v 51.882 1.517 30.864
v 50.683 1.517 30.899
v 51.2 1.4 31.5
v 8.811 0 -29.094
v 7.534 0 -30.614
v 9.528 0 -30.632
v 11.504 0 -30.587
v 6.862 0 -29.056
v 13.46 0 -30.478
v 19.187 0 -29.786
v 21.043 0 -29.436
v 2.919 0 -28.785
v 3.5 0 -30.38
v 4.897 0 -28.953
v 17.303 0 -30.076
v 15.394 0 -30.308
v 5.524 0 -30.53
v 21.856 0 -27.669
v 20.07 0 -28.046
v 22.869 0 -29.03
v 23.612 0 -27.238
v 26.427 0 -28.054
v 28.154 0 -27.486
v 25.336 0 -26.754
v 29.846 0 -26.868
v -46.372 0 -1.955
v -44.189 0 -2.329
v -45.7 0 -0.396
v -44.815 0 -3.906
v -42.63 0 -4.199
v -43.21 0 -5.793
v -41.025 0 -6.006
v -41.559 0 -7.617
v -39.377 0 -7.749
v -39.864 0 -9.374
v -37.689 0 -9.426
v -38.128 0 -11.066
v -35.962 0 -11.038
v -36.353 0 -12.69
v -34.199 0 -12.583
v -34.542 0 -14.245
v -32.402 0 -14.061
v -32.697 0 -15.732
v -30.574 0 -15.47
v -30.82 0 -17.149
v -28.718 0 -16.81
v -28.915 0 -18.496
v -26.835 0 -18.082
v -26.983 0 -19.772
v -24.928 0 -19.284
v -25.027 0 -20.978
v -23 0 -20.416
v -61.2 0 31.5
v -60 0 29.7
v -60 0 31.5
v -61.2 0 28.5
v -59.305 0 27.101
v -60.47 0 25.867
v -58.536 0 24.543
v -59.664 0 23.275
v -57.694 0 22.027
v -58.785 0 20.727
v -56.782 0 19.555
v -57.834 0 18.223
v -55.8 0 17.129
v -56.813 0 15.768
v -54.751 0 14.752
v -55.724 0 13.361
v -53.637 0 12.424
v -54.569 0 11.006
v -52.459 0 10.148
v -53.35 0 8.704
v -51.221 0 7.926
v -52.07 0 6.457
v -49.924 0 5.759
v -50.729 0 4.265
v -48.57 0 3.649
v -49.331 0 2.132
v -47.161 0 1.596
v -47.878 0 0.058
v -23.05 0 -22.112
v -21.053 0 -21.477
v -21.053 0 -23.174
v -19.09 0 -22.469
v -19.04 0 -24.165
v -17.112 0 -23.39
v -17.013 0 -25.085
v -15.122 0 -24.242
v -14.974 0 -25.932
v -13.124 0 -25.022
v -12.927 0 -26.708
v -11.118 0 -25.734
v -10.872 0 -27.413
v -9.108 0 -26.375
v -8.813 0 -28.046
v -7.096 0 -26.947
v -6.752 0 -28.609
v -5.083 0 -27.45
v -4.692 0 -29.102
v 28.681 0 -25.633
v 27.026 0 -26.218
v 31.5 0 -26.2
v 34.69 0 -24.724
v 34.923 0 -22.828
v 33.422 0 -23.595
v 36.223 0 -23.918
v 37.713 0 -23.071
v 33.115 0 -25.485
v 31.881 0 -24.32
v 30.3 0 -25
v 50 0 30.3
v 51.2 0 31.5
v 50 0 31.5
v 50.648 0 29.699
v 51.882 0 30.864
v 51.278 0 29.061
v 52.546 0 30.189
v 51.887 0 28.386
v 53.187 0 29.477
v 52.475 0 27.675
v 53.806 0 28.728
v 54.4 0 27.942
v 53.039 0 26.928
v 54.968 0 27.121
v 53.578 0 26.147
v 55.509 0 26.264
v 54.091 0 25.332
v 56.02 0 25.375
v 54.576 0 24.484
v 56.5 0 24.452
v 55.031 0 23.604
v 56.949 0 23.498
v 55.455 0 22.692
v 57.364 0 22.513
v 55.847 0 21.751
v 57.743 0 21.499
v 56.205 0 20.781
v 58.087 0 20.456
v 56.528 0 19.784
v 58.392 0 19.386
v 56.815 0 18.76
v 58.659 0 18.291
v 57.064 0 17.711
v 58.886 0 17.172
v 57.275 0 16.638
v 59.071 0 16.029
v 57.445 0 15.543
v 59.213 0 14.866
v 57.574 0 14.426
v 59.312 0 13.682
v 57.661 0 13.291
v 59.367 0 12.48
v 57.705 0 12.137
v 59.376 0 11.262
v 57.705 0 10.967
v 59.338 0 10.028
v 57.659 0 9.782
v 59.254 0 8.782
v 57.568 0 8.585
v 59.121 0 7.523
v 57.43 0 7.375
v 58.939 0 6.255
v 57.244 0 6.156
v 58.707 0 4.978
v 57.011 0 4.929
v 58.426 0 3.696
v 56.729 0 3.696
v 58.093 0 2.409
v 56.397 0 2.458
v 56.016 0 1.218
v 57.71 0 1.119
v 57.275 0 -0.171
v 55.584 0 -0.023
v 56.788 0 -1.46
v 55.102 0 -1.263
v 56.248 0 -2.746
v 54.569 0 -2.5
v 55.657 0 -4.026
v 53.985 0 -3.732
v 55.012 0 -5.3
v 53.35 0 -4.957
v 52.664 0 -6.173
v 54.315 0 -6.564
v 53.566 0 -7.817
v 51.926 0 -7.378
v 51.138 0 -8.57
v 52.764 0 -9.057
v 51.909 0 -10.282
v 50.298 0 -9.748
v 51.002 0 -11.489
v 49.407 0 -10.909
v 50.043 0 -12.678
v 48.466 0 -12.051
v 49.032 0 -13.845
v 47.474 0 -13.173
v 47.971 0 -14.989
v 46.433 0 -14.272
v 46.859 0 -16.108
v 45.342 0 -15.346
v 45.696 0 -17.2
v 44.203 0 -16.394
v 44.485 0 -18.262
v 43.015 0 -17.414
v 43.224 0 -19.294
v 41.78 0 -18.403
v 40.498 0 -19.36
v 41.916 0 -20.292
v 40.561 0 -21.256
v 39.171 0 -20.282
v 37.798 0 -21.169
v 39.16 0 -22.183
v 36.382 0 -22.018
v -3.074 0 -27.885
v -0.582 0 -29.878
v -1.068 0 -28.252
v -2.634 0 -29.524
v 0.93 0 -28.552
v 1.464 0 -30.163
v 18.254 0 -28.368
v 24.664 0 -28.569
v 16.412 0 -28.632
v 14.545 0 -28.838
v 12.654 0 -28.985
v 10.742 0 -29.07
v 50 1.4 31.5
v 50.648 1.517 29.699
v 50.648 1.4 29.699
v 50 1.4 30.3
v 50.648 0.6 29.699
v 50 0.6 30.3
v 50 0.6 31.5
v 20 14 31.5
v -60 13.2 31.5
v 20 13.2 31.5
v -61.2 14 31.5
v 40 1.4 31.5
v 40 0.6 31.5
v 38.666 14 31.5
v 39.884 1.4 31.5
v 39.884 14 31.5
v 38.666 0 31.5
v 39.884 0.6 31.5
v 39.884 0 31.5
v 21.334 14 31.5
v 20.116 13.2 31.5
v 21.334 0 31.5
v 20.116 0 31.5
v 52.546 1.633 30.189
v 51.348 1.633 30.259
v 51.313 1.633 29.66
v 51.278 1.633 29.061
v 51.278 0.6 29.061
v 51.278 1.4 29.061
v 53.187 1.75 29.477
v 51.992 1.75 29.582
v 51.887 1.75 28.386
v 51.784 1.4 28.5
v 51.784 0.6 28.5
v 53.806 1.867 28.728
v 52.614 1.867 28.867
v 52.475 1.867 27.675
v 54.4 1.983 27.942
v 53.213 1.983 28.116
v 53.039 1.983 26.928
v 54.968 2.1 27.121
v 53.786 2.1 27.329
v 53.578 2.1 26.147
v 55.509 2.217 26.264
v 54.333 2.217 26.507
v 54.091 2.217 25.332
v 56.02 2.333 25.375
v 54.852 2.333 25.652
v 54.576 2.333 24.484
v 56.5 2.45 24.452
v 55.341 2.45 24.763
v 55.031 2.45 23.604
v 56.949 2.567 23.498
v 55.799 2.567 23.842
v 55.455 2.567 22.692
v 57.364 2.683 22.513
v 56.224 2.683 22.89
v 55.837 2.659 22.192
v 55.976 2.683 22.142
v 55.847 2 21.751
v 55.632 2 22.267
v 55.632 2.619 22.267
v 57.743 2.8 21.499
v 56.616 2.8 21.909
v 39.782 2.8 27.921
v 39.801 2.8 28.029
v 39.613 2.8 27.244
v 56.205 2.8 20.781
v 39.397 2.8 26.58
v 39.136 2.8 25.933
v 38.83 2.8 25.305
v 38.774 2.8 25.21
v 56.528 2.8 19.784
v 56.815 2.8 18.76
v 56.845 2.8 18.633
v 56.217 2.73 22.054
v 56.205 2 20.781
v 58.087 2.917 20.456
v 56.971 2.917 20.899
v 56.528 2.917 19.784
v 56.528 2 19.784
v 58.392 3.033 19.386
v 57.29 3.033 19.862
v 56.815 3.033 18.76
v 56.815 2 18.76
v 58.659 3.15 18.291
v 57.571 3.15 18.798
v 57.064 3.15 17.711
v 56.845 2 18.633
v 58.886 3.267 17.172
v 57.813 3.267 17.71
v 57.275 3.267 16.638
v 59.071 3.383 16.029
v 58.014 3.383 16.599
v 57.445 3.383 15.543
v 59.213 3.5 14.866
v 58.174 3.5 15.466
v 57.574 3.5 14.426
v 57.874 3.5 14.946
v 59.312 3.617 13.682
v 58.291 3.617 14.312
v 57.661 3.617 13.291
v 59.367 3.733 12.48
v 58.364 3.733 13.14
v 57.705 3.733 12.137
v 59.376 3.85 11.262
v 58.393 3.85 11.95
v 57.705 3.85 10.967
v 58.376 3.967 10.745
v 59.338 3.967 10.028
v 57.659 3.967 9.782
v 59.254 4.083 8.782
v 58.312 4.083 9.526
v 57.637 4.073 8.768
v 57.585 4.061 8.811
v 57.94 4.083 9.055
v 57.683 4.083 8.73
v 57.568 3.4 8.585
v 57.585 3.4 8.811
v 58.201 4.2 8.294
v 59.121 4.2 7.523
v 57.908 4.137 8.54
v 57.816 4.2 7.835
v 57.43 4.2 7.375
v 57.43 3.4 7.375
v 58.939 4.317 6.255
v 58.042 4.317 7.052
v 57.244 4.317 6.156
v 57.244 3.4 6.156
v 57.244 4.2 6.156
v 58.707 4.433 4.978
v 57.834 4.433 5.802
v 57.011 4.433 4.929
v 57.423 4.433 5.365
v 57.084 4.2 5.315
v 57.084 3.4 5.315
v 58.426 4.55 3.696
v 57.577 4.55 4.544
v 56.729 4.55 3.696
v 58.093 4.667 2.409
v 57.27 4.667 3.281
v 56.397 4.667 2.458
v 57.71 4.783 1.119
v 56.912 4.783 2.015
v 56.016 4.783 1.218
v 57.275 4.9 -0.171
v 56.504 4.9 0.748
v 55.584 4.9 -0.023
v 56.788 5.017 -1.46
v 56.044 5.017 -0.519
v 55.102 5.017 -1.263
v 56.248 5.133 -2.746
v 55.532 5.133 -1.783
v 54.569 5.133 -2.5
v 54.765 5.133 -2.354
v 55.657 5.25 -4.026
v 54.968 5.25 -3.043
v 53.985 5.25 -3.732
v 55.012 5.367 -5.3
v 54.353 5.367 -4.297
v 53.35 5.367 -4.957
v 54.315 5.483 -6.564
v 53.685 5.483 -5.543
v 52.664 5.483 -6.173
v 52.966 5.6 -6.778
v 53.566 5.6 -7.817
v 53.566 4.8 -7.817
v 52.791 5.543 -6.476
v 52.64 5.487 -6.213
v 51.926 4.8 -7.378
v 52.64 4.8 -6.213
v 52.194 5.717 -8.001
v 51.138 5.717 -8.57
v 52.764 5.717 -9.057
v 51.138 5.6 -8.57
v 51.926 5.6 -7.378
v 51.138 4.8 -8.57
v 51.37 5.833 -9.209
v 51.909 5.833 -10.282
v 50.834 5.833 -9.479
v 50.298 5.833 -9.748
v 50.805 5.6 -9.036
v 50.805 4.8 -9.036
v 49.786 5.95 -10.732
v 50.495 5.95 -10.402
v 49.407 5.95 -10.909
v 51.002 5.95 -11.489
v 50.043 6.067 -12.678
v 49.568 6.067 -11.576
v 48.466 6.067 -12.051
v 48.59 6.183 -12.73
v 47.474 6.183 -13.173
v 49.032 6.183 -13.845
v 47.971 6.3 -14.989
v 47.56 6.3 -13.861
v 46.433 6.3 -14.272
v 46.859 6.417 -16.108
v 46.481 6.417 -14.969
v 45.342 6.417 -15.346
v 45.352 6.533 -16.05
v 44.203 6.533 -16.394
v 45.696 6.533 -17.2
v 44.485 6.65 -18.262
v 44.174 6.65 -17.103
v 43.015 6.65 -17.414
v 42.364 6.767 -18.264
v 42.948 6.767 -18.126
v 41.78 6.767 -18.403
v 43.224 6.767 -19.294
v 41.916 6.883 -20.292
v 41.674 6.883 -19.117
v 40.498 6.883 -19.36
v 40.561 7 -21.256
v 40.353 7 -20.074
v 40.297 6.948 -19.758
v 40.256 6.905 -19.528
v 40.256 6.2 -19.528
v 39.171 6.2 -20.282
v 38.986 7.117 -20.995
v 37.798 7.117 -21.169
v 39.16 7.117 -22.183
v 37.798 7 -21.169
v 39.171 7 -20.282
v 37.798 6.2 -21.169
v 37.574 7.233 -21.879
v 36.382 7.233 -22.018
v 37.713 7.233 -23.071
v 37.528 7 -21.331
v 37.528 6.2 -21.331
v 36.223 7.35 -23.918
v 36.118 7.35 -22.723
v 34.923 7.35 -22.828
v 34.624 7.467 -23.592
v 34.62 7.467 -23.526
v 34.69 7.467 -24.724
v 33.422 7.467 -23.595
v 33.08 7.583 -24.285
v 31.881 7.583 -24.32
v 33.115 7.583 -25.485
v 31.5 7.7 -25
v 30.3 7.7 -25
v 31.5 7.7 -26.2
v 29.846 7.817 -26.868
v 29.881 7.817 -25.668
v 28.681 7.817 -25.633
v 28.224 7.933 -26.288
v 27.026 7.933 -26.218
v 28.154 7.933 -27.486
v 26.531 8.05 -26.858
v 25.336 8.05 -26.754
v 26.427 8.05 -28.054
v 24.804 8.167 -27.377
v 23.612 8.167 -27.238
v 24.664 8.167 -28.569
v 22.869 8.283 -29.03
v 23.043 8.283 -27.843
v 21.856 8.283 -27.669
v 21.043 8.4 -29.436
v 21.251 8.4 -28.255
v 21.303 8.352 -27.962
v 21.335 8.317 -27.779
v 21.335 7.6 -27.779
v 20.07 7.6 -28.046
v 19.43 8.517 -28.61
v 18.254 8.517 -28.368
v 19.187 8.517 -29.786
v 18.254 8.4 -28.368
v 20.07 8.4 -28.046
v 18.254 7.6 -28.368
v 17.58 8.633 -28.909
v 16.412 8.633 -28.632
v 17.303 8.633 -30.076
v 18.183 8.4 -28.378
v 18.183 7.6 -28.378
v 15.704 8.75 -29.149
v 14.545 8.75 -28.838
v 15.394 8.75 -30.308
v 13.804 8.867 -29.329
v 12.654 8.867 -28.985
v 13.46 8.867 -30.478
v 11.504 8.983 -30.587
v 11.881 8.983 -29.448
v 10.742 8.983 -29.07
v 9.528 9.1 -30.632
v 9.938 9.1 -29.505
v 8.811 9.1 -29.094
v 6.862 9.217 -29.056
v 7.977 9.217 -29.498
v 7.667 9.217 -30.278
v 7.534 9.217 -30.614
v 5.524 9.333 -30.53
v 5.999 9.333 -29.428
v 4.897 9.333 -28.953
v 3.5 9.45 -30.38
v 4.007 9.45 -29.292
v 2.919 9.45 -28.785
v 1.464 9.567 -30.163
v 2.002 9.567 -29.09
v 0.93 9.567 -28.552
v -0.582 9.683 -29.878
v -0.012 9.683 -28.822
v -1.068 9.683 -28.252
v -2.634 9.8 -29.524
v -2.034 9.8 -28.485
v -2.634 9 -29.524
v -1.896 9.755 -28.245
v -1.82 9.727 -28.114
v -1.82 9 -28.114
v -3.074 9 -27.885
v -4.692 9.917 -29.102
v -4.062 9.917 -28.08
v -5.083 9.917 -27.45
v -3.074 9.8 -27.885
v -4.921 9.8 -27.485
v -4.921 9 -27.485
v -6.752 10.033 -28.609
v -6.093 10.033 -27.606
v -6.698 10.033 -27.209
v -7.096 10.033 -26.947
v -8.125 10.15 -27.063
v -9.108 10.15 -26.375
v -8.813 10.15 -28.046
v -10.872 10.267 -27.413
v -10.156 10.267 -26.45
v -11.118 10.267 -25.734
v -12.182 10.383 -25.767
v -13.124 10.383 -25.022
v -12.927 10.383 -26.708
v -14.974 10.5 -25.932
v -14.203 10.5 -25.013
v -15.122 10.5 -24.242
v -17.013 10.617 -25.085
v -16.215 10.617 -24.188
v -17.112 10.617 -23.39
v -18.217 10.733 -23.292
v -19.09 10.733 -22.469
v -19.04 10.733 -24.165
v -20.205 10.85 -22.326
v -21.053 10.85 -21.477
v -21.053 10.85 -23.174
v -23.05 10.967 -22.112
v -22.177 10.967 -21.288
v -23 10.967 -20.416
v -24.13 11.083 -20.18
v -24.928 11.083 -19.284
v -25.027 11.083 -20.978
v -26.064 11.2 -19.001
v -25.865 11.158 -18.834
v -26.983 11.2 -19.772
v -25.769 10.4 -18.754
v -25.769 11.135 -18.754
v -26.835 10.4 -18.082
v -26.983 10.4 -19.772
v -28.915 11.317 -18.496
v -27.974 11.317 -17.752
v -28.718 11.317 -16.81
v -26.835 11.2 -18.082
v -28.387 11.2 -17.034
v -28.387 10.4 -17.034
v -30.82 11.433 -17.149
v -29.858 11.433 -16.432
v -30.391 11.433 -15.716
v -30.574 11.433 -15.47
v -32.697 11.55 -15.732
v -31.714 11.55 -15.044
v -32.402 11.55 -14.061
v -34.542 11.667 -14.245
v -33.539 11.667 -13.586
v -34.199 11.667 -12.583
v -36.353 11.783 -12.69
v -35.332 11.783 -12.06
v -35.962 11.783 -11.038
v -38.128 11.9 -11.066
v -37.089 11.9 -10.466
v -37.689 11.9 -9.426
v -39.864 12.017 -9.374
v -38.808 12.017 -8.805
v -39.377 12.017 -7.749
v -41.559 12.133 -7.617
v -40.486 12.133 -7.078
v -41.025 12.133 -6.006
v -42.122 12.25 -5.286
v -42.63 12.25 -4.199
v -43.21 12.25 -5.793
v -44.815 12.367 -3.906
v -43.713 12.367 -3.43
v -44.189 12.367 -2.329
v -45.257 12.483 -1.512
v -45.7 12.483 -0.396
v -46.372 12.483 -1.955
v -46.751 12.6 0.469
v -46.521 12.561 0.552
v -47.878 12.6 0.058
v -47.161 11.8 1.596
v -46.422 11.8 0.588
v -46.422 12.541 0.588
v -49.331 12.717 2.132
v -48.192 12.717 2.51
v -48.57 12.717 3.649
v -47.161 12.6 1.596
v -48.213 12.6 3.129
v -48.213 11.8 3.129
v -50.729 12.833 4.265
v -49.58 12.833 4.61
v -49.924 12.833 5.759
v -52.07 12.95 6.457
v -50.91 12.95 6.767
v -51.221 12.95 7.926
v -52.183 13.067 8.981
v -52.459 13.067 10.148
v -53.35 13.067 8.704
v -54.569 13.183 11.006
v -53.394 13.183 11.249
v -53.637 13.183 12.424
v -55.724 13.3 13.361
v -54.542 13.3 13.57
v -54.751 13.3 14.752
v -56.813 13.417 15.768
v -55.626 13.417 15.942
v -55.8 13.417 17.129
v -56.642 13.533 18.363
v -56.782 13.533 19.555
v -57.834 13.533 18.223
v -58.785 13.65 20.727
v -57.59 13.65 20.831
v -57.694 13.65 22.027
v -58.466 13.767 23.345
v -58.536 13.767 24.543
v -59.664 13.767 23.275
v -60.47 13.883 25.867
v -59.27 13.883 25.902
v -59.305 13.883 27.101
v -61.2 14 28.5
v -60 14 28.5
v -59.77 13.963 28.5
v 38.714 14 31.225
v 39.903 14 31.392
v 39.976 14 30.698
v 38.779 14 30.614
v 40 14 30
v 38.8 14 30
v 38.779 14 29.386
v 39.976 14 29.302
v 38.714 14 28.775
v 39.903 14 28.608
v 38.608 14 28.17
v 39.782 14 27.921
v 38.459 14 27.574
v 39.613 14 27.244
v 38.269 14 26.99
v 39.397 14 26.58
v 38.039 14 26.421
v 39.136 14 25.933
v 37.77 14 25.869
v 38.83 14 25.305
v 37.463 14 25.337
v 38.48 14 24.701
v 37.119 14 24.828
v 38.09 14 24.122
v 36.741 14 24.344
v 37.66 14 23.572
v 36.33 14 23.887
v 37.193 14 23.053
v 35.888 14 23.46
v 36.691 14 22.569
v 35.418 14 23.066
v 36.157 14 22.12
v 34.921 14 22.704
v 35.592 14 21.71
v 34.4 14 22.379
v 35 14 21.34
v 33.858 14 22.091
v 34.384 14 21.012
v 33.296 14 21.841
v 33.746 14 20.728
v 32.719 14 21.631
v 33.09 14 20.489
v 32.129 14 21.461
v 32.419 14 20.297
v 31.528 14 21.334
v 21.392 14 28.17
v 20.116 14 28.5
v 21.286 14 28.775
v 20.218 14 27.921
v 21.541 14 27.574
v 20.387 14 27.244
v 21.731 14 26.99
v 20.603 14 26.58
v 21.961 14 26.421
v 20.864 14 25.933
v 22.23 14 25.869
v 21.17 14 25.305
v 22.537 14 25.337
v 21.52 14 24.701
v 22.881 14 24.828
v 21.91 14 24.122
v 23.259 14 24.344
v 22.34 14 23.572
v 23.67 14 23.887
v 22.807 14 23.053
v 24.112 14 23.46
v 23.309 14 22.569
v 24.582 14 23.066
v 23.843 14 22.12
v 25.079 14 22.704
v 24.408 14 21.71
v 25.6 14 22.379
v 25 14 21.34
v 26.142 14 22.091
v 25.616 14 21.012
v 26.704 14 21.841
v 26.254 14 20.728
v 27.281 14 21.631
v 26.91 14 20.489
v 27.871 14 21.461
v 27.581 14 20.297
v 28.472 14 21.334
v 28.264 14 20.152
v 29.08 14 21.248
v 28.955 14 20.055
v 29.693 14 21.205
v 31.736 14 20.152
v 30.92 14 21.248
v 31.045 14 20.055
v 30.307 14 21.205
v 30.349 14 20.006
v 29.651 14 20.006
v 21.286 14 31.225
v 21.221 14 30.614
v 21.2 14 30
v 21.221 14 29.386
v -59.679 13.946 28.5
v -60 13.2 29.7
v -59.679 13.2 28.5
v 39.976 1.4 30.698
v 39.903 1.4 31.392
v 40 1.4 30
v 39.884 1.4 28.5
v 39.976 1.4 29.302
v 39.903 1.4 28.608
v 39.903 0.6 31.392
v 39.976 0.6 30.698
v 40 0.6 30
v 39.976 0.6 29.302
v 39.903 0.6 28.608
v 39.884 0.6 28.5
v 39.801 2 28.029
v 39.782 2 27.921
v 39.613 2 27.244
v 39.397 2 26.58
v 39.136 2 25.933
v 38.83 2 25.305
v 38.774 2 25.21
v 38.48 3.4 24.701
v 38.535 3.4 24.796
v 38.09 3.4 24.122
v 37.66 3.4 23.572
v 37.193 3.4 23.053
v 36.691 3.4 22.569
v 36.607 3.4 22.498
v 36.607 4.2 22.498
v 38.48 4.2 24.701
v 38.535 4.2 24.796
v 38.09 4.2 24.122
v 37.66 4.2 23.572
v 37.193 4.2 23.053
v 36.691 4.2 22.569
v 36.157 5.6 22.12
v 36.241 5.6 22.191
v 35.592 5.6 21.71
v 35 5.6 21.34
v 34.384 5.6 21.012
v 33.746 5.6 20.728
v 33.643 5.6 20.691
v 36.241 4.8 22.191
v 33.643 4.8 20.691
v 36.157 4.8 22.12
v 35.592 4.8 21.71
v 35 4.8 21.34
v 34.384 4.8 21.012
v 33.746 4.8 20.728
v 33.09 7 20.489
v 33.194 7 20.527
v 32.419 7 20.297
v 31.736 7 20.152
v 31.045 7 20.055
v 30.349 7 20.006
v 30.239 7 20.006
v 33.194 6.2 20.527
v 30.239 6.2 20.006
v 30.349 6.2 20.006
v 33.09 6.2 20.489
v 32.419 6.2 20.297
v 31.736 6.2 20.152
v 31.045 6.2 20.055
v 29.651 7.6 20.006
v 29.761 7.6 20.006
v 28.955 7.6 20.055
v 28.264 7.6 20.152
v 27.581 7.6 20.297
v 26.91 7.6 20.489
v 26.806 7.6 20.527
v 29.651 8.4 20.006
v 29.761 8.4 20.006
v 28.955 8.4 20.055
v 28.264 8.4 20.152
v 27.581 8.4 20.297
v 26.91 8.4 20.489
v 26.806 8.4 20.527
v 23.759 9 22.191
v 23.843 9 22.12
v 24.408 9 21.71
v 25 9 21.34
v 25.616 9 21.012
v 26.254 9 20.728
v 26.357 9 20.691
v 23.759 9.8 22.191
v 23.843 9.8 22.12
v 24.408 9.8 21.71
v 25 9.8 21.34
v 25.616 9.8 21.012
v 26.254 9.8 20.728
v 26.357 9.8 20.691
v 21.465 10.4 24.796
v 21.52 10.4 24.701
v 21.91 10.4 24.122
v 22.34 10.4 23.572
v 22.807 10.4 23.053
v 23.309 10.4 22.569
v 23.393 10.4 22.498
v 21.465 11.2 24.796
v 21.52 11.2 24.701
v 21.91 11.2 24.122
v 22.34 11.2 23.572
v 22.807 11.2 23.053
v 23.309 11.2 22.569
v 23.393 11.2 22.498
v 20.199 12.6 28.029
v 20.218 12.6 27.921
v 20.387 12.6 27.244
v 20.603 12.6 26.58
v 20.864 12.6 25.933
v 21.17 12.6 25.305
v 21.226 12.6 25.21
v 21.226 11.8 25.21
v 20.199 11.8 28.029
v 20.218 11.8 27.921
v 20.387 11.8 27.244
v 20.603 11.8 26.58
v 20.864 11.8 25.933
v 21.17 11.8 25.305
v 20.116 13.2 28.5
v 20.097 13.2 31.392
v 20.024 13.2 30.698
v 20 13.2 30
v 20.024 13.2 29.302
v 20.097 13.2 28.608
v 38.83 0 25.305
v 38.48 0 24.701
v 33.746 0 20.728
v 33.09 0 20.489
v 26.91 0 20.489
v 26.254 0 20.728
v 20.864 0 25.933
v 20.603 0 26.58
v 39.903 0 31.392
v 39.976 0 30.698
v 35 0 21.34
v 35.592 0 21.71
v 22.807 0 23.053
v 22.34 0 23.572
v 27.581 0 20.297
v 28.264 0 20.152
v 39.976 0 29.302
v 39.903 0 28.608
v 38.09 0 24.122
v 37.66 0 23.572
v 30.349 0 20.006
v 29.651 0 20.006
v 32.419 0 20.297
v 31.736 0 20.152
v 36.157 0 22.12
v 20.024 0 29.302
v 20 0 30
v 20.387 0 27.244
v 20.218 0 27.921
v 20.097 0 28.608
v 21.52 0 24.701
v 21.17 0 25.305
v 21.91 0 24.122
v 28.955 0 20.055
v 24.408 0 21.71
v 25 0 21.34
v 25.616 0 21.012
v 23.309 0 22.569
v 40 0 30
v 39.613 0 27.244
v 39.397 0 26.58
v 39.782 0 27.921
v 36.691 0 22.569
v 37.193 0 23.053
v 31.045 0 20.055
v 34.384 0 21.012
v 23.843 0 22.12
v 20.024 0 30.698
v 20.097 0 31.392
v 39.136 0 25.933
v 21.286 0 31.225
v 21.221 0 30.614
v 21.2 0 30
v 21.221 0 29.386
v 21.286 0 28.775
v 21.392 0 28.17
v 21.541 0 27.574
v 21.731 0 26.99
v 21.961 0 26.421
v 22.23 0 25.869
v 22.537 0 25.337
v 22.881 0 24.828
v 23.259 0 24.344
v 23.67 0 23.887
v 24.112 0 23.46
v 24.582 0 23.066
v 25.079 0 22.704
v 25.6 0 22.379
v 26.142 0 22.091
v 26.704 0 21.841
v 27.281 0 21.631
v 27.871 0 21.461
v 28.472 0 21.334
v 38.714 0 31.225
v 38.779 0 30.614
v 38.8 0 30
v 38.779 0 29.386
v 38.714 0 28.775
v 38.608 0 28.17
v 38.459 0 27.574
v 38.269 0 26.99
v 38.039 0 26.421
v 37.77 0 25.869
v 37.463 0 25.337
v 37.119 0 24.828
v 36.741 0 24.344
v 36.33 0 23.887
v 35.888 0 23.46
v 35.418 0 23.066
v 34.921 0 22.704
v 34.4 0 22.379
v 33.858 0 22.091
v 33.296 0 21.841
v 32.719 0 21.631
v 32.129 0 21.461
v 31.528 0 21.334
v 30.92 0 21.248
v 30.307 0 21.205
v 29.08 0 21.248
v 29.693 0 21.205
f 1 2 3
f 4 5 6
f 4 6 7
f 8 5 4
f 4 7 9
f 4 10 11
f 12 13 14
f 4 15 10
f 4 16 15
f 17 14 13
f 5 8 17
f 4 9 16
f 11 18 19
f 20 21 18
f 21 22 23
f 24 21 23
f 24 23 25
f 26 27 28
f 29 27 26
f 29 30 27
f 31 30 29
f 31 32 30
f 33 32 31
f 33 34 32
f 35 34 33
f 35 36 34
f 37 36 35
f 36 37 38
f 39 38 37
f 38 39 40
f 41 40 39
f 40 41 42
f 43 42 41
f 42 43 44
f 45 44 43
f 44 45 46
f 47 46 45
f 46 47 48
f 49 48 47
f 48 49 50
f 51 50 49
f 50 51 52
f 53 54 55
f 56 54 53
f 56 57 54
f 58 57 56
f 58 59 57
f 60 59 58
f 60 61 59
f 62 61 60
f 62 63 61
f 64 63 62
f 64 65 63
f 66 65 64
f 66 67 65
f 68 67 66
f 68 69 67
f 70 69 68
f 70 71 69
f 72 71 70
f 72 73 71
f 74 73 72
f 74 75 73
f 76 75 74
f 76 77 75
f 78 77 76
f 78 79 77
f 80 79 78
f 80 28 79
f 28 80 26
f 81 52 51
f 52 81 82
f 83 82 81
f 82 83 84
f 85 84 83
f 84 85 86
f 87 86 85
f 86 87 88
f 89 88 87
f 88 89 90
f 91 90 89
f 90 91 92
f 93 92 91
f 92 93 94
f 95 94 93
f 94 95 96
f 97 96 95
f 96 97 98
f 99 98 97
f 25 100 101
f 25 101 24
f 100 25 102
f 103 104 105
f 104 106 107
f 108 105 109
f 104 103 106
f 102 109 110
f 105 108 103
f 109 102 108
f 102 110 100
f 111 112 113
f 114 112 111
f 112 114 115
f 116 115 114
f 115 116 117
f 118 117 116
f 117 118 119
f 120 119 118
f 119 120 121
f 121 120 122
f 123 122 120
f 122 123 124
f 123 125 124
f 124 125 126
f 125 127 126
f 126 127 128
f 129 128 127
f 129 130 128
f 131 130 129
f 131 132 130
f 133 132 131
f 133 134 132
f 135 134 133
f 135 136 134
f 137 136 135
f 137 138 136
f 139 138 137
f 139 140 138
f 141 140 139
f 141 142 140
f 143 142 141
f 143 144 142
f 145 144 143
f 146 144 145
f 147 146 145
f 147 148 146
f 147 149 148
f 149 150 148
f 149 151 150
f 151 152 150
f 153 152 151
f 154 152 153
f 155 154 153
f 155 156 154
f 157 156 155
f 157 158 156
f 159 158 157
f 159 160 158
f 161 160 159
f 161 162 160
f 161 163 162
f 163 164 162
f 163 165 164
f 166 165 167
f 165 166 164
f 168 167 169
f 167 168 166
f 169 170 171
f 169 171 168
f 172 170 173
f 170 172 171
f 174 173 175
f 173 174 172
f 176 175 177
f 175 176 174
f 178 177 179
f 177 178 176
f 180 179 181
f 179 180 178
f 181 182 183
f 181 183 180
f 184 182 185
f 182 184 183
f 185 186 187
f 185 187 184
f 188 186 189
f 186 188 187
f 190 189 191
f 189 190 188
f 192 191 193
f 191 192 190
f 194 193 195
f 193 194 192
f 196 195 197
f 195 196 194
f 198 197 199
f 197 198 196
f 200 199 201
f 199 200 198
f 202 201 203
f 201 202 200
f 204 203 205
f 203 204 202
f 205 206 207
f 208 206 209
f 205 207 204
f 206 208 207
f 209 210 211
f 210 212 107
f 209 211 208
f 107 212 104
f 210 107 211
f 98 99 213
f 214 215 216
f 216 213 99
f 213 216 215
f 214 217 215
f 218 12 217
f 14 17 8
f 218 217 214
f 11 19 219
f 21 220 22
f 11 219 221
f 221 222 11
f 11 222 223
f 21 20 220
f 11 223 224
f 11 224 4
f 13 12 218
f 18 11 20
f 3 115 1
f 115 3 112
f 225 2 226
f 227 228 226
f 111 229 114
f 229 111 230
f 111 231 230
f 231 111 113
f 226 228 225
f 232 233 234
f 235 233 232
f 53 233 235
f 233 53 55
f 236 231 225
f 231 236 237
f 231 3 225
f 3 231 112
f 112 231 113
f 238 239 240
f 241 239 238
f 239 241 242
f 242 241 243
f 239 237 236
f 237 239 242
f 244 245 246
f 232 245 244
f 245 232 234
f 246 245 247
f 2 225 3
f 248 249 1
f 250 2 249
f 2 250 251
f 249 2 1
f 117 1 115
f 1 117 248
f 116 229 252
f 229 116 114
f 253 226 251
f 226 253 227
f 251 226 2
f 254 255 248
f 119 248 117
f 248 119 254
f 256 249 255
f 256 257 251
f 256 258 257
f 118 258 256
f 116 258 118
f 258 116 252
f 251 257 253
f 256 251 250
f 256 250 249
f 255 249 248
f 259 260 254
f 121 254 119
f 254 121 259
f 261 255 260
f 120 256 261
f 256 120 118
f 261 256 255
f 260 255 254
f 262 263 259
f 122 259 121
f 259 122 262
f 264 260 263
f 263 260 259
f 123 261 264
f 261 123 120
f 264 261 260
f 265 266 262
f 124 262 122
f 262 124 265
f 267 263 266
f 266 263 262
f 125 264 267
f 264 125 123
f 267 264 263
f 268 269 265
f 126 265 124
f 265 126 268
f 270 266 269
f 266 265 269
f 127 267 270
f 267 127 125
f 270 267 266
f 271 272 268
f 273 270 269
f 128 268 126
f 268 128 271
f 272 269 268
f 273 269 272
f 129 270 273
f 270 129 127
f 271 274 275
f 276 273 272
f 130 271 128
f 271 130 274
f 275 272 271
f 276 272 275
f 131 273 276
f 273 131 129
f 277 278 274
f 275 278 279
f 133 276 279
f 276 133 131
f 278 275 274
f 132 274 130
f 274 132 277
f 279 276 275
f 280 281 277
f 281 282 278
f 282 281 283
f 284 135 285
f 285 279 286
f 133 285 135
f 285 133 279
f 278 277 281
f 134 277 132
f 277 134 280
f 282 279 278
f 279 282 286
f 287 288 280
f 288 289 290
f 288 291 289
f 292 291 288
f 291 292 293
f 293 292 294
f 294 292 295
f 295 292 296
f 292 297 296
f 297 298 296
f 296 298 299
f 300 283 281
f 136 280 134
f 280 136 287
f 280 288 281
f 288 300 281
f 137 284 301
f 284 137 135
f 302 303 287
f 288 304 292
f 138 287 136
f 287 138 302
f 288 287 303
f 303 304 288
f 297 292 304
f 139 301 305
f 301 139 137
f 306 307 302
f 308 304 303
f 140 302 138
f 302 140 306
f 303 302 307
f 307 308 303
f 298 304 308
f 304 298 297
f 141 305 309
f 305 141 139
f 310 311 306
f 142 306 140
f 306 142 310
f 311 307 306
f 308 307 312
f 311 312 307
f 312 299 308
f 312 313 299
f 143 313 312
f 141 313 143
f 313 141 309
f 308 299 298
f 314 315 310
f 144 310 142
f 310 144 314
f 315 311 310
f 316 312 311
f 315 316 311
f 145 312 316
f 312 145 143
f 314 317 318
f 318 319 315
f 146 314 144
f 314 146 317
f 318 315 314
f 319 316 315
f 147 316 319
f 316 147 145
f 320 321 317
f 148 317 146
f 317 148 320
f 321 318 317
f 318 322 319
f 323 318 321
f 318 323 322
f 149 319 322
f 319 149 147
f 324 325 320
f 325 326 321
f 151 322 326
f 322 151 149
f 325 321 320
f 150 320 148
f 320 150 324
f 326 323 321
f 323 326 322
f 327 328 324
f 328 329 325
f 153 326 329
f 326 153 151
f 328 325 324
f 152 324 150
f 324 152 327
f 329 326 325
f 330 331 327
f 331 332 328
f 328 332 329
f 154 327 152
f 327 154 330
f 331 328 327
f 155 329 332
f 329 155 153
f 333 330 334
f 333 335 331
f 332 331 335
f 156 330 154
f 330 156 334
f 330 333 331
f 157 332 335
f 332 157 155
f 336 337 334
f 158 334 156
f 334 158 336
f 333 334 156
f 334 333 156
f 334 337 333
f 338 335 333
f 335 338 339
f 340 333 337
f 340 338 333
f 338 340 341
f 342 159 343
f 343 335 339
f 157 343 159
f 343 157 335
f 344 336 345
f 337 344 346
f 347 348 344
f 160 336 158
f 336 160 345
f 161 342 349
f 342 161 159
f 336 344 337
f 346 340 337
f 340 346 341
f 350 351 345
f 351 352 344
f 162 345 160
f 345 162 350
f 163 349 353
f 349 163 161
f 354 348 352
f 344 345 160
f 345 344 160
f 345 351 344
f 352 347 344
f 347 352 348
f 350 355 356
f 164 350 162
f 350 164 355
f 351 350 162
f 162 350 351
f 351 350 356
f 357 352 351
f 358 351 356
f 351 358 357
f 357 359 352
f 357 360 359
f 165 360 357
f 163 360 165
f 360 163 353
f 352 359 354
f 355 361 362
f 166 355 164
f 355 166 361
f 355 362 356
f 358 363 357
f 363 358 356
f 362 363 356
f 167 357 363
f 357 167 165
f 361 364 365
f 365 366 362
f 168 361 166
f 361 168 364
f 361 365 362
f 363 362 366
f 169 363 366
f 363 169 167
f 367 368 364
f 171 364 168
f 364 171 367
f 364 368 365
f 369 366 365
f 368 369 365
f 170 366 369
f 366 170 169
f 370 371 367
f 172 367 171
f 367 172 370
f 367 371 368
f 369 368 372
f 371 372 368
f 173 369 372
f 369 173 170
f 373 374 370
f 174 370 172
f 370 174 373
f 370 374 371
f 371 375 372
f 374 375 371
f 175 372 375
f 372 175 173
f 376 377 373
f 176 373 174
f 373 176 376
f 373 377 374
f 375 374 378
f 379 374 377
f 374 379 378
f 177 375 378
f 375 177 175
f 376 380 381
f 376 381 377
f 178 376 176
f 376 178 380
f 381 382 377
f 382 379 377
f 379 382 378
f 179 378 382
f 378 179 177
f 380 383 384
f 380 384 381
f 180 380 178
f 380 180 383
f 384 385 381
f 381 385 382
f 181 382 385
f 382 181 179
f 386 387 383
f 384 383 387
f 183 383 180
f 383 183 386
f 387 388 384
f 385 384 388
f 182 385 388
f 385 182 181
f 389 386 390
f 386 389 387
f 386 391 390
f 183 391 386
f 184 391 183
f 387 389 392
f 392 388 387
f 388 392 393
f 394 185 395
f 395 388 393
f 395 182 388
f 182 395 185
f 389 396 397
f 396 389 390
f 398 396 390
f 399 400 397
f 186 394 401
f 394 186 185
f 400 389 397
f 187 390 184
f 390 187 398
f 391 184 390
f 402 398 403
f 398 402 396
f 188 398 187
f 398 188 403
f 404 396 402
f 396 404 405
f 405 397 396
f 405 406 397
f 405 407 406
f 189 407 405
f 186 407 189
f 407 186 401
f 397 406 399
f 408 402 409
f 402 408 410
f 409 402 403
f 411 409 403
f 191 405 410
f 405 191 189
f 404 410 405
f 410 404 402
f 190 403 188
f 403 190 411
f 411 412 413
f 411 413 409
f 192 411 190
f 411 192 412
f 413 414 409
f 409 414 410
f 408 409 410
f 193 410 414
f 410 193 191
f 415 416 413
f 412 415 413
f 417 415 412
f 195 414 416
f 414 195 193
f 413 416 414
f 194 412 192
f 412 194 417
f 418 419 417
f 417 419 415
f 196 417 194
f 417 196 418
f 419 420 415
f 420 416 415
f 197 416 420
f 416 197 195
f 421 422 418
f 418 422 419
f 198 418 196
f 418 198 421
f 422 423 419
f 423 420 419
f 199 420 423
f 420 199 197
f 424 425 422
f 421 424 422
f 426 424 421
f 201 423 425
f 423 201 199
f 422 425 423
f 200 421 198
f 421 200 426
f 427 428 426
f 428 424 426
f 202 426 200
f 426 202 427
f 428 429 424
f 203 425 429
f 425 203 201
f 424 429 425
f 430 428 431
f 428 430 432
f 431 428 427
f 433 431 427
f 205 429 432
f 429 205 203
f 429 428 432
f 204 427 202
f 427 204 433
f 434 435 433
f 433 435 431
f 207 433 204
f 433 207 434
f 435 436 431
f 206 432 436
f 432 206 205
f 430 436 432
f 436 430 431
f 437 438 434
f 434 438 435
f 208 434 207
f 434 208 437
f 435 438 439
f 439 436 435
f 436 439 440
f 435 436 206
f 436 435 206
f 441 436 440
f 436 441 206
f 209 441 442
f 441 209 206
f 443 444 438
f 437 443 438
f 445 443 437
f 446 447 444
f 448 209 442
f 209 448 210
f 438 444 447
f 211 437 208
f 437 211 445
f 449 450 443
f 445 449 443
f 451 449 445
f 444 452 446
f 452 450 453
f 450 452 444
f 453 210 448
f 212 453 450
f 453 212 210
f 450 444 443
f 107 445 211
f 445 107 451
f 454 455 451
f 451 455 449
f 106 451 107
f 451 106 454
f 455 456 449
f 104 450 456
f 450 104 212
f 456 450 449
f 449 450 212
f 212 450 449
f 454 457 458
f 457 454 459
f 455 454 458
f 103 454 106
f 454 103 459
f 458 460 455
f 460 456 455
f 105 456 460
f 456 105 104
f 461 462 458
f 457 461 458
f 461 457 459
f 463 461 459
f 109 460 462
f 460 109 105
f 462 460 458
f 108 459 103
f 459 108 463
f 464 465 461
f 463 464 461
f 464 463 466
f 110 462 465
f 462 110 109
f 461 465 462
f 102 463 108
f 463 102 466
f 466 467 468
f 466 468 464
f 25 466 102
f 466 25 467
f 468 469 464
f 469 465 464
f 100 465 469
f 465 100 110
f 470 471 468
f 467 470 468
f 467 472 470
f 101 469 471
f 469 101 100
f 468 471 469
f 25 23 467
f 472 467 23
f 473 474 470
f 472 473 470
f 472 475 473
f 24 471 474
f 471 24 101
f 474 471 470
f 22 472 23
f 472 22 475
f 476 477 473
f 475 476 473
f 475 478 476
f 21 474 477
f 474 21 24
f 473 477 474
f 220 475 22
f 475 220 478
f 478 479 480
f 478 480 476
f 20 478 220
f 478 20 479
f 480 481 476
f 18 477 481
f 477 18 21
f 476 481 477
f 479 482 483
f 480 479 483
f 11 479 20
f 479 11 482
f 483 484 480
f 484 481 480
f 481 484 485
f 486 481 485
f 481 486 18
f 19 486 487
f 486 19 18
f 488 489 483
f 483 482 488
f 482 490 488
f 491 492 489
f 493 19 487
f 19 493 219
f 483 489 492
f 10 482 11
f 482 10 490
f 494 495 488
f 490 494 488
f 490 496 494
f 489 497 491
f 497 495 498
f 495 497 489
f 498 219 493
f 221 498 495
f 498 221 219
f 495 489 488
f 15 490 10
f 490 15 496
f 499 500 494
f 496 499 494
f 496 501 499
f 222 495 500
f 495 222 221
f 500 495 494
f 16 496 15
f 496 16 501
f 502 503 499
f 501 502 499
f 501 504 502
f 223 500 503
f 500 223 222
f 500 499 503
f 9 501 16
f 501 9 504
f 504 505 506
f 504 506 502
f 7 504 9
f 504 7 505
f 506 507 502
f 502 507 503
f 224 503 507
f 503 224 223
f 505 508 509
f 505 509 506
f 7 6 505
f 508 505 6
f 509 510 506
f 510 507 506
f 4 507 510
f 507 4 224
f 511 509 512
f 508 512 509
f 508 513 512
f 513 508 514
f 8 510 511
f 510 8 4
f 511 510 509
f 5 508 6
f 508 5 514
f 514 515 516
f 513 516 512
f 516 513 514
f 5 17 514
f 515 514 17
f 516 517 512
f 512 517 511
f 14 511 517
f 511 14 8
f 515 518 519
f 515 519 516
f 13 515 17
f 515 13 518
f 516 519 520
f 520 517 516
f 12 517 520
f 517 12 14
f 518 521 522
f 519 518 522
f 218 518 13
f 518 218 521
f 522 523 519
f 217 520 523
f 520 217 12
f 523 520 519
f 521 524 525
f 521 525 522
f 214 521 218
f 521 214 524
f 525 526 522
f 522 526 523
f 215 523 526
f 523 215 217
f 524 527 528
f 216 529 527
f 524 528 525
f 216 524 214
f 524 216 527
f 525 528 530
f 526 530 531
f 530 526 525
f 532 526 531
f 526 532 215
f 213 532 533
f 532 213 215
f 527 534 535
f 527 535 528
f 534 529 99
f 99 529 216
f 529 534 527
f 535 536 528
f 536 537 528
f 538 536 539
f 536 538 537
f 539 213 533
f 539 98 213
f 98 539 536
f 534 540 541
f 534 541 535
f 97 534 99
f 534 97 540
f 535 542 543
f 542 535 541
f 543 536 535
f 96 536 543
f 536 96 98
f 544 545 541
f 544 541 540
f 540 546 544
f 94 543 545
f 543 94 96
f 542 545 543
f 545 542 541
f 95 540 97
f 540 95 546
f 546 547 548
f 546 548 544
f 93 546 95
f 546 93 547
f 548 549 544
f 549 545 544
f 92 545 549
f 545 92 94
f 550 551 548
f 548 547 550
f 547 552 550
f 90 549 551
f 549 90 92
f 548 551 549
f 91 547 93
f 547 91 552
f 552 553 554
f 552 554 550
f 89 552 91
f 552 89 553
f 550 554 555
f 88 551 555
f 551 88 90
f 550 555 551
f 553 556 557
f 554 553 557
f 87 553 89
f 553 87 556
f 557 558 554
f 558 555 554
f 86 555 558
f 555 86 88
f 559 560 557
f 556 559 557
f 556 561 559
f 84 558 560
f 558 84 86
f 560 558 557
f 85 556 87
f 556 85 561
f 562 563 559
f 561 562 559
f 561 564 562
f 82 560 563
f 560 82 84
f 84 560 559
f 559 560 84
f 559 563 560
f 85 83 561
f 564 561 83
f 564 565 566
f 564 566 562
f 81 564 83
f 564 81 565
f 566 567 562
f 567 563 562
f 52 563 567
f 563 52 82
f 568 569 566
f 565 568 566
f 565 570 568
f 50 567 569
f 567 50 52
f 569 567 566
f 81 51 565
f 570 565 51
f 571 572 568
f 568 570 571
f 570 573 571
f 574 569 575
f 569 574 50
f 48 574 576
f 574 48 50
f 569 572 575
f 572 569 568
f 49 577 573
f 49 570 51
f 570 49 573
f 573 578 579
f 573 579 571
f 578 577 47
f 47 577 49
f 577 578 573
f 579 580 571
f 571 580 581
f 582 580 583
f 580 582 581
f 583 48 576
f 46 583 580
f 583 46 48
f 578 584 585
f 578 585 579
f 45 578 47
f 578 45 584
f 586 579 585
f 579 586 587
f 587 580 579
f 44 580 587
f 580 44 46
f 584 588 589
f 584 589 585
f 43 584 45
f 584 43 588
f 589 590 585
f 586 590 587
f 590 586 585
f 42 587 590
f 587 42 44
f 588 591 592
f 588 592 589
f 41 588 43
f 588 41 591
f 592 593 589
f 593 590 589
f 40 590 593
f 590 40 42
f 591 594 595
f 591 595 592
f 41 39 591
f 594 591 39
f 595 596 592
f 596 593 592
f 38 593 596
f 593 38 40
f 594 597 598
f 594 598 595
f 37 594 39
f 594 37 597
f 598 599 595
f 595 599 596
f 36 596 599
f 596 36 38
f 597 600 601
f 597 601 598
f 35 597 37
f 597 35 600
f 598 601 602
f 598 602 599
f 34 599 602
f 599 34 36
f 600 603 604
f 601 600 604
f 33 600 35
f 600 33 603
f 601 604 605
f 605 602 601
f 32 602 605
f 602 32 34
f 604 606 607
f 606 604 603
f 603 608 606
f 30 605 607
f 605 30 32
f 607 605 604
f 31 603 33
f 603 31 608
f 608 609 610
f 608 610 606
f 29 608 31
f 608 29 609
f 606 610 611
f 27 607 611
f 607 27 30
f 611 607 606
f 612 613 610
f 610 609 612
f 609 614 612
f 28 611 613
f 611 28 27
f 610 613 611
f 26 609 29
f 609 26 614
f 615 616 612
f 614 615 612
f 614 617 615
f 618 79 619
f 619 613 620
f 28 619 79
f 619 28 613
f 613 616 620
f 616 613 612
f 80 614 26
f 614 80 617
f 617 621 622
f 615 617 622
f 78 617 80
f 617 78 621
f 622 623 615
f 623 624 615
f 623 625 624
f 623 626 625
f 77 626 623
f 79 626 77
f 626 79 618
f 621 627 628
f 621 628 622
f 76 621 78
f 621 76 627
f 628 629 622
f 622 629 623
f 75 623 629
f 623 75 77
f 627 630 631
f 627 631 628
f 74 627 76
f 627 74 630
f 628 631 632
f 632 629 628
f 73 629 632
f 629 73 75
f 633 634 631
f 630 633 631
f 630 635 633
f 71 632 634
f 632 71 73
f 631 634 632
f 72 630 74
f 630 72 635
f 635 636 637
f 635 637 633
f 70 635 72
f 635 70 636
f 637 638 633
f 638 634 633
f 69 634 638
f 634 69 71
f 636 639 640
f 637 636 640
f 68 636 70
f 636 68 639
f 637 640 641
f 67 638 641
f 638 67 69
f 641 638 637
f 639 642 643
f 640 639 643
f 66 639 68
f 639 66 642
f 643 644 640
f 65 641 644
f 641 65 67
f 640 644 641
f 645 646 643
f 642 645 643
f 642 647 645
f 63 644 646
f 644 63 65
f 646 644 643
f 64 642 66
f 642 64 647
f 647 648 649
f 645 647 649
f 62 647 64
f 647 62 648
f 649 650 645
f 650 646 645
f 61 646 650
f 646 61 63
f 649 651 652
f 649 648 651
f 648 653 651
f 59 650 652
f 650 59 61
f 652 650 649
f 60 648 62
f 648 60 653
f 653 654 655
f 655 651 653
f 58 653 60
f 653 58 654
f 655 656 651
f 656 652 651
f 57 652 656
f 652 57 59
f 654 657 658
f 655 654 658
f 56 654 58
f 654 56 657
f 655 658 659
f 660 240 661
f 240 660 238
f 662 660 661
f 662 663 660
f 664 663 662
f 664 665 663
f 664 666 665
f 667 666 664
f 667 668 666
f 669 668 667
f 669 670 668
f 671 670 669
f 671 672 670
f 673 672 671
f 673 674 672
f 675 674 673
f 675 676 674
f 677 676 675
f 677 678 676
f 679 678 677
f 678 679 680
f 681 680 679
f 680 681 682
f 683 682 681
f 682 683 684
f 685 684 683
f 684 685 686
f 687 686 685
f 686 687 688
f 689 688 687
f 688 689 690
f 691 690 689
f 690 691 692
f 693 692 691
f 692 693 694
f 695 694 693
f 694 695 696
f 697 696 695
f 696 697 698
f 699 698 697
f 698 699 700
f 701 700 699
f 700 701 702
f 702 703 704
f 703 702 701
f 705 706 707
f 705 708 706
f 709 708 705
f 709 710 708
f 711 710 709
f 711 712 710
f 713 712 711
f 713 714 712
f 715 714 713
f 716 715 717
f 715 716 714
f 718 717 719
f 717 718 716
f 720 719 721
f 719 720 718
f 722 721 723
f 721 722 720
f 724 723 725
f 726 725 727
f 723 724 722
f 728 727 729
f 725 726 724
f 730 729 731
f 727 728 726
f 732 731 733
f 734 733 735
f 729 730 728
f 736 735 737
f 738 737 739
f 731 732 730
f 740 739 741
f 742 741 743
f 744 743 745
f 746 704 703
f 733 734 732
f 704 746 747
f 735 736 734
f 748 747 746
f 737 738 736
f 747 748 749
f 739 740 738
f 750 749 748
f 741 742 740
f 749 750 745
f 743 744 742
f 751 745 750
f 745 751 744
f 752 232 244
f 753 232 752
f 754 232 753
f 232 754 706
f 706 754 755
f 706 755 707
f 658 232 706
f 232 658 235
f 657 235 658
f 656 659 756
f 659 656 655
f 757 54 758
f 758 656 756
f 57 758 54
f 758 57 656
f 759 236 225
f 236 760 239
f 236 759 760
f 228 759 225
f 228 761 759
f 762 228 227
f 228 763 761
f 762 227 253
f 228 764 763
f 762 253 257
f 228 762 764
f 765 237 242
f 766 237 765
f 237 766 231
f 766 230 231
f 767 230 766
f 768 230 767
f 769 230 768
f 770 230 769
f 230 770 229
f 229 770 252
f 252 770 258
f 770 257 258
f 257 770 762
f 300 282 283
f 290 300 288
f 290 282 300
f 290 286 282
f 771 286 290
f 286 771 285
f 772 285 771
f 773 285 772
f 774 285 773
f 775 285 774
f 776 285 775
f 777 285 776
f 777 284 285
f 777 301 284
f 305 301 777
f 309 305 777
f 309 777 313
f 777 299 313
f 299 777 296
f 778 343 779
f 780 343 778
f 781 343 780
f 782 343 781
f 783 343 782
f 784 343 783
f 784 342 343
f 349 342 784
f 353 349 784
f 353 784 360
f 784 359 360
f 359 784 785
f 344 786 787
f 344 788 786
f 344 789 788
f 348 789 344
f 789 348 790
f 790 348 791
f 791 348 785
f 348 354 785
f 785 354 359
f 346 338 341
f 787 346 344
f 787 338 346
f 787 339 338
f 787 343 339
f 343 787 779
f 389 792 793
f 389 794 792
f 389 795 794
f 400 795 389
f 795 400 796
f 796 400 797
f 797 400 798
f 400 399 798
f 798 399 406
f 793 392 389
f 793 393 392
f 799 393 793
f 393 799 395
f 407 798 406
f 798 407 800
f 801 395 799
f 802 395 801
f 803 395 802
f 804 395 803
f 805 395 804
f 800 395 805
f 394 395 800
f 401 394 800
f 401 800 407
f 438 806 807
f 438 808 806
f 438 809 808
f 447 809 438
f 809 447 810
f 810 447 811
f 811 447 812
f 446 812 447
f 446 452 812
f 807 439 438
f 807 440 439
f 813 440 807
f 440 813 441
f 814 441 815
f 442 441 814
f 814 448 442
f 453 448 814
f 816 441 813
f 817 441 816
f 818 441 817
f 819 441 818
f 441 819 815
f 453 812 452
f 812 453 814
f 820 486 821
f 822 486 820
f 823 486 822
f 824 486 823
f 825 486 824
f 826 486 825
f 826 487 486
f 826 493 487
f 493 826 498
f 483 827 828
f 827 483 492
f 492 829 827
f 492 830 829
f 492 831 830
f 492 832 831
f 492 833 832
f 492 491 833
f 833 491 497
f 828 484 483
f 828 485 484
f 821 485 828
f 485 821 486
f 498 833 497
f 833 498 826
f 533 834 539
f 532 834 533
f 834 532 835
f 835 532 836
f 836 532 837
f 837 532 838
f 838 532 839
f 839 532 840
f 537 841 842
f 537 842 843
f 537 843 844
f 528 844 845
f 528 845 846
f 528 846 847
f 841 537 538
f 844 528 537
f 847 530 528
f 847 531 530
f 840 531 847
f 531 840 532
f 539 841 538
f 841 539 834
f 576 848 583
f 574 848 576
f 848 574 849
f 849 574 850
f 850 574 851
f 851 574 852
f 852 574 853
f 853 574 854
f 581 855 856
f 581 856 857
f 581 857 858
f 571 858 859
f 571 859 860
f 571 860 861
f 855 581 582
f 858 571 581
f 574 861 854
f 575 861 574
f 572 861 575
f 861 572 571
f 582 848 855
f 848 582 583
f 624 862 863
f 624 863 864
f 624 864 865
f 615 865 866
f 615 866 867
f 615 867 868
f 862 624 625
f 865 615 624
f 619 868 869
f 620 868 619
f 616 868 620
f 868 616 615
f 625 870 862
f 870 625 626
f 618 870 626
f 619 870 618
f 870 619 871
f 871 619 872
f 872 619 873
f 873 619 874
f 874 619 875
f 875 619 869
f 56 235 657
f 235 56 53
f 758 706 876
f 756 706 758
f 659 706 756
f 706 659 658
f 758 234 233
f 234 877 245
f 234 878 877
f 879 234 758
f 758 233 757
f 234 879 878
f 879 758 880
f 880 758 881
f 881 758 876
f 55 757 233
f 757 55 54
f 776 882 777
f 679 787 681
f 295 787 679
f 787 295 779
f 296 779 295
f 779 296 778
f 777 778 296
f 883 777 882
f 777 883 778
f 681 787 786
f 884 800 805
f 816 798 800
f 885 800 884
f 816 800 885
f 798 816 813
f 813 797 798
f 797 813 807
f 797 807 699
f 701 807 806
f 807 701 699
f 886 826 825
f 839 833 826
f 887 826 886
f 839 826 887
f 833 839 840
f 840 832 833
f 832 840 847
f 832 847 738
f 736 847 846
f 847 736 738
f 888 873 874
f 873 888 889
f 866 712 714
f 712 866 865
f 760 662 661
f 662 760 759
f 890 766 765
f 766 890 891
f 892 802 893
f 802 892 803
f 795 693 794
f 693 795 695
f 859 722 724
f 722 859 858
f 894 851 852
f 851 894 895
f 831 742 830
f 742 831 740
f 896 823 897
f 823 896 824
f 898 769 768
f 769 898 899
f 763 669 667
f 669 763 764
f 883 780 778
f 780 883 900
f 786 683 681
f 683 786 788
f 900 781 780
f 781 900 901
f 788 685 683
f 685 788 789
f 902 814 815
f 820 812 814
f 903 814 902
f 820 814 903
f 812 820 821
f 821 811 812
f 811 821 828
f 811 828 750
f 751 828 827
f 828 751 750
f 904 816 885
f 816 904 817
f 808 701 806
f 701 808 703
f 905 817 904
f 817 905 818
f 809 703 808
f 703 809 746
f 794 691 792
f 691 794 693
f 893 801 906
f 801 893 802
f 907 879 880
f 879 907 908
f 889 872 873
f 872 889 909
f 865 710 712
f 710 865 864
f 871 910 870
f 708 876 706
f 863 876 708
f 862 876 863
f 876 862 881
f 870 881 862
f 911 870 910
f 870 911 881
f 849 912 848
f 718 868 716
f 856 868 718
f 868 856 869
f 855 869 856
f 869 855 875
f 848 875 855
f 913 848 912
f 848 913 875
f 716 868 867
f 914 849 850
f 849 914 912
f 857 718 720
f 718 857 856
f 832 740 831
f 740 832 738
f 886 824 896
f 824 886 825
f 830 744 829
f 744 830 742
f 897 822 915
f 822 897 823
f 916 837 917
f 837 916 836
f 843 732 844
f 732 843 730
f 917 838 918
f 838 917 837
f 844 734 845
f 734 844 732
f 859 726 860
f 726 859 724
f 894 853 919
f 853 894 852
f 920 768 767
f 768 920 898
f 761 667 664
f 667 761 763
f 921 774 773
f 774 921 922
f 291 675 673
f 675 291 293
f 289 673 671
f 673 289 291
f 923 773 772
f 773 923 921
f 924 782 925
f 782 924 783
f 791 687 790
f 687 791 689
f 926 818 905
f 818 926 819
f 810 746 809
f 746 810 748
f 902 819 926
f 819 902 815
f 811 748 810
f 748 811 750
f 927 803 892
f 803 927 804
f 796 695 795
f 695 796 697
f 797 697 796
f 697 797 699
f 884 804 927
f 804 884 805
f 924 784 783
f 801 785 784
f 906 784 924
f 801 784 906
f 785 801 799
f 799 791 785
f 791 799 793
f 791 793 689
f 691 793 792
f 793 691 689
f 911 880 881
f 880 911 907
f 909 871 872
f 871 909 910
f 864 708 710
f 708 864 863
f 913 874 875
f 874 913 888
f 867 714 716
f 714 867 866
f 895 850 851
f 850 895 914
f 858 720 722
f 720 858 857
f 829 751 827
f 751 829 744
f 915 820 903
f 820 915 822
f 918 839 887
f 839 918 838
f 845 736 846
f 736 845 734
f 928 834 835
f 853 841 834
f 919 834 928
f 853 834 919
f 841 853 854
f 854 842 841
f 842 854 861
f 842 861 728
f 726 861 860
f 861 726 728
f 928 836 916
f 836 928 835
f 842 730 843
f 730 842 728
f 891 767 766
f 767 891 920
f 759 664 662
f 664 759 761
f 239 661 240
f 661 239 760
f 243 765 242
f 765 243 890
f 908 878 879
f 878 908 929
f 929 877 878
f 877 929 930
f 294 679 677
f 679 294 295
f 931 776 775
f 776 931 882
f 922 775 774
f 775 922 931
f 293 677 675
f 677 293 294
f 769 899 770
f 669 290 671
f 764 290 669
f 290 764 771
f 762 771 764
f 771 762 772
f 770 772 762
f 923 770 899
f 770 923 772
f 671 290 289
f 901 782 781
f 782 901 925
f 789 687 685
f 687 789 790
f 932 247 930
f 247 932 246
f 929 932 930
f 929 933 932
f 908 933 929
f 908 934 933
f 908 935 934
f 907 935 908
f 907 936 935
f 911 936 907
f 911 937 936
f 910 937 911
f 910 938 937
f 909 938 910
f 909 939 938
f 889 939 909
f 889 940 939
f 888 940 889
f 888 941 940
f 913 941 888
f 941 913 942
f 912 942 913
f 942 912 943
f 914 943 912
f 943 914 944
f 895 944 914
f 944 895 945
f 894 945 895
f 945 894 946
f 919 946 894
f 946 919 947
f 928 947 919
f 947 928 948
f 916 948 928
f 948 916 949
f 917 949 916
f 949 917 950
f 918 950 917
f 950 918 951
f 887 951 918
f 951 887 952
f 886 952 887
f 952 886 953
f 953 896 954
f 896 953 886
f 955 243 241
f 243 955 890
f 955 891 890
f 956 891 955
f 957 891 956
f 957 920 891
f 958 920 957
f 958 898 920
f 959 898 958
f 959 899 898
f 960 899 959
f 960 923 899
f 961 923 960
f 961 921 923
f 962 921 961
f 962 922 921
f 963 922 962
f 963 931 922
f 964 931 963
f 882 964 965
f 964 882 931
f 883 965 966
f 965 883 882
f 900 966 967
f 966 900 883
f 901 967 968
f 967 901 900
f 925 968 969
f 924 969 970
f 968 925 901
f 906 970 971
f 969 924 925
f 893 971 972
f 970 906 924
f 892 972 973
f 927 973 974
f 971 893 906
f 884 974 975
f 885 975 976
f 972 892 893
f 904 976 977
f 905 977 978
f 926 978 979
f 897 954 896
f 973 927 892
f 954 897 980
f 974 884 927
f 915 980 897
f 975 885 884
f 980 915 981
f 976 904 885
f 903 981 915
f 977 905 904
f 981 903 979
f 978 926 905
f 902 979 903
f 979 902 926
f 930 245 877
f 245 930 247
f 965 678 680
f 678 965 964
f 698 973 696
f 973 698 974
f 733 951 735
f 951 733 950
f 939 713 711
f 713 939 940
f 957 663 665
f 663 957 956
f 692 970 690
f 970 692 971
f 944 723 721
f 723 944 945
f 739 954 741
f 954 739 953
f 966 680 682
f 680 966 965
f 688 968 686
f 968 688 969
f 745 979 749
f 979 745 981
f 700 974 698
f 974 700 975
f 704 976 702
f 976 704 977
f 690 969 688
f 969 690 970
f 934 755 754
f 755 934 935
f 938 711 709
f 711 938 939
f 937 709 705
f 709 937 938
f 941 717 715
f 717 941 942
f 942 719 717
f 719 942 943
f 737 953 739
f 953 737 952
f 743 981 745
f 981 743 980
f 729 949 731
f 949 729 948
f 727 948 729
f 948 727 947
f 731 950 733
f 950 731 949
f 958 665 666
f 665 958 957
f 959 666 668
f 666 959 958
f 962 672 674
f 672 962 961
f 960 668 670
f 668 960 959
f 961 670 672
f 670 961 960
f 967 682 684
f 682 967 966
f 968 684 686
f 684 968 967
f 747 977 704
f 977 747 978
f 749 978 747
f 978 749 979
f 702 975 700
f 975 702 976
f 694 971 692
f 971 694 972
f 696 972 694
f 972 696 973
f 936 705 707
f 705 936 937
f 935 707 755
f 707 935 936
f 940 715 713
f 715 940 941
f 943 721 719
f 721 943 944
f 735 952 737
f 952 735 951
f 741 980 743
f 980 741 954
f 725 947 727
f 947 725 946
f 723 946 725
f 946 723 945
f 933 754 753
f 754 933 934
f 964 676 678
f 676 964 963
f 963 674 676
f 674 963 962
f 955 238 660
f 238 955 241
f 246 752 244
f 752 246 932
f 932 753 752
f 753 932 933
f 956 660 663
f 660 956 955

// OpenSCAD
// OpenSCAD  test object for bridges
// Also tests for on-extruder fan cooling unevenness in X,Y axes.

// Parametrised to use as much space on a print bed as required.
// this design uses only half the spiral of the original.

// Customiser enabled

// preview[view:north east, tilt:top diagonal]

// Source file  https://www.thingiverse.com/thing:912248 

// Author : Neon22


/*[Bridges]*/
// length of the shortest bridge
min_bridge_length = 10; //[10:5:180]

// length of the longest bridge
max_bridge_length = 80; //[20:5:200]

// Total number
number_of_bridges = 10; //[4:1:20]

// difference between subsequent bridges
bridge_increment = (max_bridge_length - min_bridge_length) / (number_of_bridges - 1) ; //5;

// Test the XY cooling efficiency
show_XY_test = "no"; // [yes,no]

/*[Shape]*/
// diameter of the central hub
hub_diameter = 20; //[18:1:30]

// width of each bridge
bridge_width = 3; //[1:1:8]

// thickness of the vertical walls
wall_thickness = 1.2; //[1:10]

// layer height of each bridge
bridge_height = 0.8; //[0.1:0.1:2]

// height of each bridge above the previous bridge
bridge_z_gap = 0.6; //[0.2:0.1:1]

/* [Hidden] */
// angle between each bridge
bridge_angle = 180.0 / (number_of_bridges -1);

spiralResolution = 12*1;
spiralIncrement = 1/spiralResolution;
maxAngle = bridge_angle * (number_of_bridges-1);
eps = 0.1 * 1; 
$fn = 90 * 1;


function spiralOffset(angle) = min_bridge_length + angle/maxAngle * (max_bridge_length - min_bridge_length);
function extensionAngle(length) = asin((bridge_width*0.5)/length);

module bridgeTest() {
	tubeHeight = number_of_bridges * (bridge_height + bridge_z_gap);
	heightStride = bridge_height + bridge_z_gap;

	difference() {
		union() {
			// Central hub
			cylinder(r = hub_diameter/2, h = tubeHeight);
			
			// The spokes (bridges)
			for (i=[0:number_of_bridges-1]) {
				length = spiralOffset(i*bridge_angle) + wall_thickness * 2;
				start_height = i * heightStride  + bridge_z_gap;
				hull() {
					rotate([0, 0, i*bridge_angle]) {
						translate([hub_diameter/2 - wall_thickness, 0, start_height]) {
							translate([0, -bridge_width/2, 0])
							cube([length , bridge_width, bridge_height], center=false);
							if (i < number_of_bridges-1) {
								translate([0, bridge_width/2 - eps, 0]) {
									cube([spiralOffset(i*bridge_angle + extensionAngle(length)) + wall_thickness, eps, bridge_height], center=false); // only an approximation
								}
							}
						}
					}
				}
				// Outer Spiral uprights
				if (i < number_of_bridges-1) {
					for (f=[0 : spiralResolution-1]) {
						frac  = f / spiralResolution;
						top	  = start_height + bridge_height;
						//end	= i == number_of_bridges-1 && f == spiralResolution-1;
						angle = i*bridge_angle + bridge_angle * f / spiralResolution;
						hull()  { // This hull sweeps through all the supports making a nice spiral
							rotate([0, 0, angle]) {
								translate([hub_diameter/2 + spiralOffset(angle), -bridge_width/2, 0]) {
									cube([wall_thickness, wall_thickness, top + heightStride * frac], center=false);
								}
								rotate([0, 0, bridge_angle * spiralIncrement])
								translate([hub_diameter/2 + spiralOffset(angle + bridge_angle * spiralIncrement),
										   -bridge_width/2, 0]) {
									cube([wall_thickness, wall_thickness, top + heightStride * (frac + spiralIncrement)], center=false); 
								}
							}
						}
					}
				} else { // last upright of outer spiral
					rotate([0, 0, i*bridge_angle]) {
						translate([length + hub_diameter/2 - wall_thickness*2, -bridge_width/2, 0]) {
							cube([wall_thickness, bridge_width, start_height + heightStride-bridge_z_gap], center=false);
						}
					}
					if (show_XY_test == "yes") {
						// extra leg
						rotate([0, 0, i*bridge_angle -90]) {
							translate([length + hub_diameter/2 - wall_thickness*2, -bridge_width/2, 0]) {
								cube([wall_thickness, bridge_width, start_height + heightStride-bridge_z_gap], center=false);
							}
						}
						// extra bridge
						rotate([0, 0, i*bridge_angle - 90]) {
							translate([hub_diameter/2 - wall_thickness, 0, start_height]) {
								translate([0, -bridge_width/2, 0])
								cube([length , bridge_width, bridge_height], center=false);
							}
						}
					}
				}
			}
		}
		// core out the cylinder and remove the un-needed side
		cylinder(r=hub_diameter/2 - wall_thickness, h=tubeHeight*3, center=true);
		translate([-hub_diameter/2, -hub_diameter-bridge_width/2, -1]) {
			cube([hub_diameter, hub_diameter, tubeHeight+2], center=false);
		}
	}

}

translate([30, 0, 30]) rotate(90,[-1, 0, 0]) bridgeTest();
